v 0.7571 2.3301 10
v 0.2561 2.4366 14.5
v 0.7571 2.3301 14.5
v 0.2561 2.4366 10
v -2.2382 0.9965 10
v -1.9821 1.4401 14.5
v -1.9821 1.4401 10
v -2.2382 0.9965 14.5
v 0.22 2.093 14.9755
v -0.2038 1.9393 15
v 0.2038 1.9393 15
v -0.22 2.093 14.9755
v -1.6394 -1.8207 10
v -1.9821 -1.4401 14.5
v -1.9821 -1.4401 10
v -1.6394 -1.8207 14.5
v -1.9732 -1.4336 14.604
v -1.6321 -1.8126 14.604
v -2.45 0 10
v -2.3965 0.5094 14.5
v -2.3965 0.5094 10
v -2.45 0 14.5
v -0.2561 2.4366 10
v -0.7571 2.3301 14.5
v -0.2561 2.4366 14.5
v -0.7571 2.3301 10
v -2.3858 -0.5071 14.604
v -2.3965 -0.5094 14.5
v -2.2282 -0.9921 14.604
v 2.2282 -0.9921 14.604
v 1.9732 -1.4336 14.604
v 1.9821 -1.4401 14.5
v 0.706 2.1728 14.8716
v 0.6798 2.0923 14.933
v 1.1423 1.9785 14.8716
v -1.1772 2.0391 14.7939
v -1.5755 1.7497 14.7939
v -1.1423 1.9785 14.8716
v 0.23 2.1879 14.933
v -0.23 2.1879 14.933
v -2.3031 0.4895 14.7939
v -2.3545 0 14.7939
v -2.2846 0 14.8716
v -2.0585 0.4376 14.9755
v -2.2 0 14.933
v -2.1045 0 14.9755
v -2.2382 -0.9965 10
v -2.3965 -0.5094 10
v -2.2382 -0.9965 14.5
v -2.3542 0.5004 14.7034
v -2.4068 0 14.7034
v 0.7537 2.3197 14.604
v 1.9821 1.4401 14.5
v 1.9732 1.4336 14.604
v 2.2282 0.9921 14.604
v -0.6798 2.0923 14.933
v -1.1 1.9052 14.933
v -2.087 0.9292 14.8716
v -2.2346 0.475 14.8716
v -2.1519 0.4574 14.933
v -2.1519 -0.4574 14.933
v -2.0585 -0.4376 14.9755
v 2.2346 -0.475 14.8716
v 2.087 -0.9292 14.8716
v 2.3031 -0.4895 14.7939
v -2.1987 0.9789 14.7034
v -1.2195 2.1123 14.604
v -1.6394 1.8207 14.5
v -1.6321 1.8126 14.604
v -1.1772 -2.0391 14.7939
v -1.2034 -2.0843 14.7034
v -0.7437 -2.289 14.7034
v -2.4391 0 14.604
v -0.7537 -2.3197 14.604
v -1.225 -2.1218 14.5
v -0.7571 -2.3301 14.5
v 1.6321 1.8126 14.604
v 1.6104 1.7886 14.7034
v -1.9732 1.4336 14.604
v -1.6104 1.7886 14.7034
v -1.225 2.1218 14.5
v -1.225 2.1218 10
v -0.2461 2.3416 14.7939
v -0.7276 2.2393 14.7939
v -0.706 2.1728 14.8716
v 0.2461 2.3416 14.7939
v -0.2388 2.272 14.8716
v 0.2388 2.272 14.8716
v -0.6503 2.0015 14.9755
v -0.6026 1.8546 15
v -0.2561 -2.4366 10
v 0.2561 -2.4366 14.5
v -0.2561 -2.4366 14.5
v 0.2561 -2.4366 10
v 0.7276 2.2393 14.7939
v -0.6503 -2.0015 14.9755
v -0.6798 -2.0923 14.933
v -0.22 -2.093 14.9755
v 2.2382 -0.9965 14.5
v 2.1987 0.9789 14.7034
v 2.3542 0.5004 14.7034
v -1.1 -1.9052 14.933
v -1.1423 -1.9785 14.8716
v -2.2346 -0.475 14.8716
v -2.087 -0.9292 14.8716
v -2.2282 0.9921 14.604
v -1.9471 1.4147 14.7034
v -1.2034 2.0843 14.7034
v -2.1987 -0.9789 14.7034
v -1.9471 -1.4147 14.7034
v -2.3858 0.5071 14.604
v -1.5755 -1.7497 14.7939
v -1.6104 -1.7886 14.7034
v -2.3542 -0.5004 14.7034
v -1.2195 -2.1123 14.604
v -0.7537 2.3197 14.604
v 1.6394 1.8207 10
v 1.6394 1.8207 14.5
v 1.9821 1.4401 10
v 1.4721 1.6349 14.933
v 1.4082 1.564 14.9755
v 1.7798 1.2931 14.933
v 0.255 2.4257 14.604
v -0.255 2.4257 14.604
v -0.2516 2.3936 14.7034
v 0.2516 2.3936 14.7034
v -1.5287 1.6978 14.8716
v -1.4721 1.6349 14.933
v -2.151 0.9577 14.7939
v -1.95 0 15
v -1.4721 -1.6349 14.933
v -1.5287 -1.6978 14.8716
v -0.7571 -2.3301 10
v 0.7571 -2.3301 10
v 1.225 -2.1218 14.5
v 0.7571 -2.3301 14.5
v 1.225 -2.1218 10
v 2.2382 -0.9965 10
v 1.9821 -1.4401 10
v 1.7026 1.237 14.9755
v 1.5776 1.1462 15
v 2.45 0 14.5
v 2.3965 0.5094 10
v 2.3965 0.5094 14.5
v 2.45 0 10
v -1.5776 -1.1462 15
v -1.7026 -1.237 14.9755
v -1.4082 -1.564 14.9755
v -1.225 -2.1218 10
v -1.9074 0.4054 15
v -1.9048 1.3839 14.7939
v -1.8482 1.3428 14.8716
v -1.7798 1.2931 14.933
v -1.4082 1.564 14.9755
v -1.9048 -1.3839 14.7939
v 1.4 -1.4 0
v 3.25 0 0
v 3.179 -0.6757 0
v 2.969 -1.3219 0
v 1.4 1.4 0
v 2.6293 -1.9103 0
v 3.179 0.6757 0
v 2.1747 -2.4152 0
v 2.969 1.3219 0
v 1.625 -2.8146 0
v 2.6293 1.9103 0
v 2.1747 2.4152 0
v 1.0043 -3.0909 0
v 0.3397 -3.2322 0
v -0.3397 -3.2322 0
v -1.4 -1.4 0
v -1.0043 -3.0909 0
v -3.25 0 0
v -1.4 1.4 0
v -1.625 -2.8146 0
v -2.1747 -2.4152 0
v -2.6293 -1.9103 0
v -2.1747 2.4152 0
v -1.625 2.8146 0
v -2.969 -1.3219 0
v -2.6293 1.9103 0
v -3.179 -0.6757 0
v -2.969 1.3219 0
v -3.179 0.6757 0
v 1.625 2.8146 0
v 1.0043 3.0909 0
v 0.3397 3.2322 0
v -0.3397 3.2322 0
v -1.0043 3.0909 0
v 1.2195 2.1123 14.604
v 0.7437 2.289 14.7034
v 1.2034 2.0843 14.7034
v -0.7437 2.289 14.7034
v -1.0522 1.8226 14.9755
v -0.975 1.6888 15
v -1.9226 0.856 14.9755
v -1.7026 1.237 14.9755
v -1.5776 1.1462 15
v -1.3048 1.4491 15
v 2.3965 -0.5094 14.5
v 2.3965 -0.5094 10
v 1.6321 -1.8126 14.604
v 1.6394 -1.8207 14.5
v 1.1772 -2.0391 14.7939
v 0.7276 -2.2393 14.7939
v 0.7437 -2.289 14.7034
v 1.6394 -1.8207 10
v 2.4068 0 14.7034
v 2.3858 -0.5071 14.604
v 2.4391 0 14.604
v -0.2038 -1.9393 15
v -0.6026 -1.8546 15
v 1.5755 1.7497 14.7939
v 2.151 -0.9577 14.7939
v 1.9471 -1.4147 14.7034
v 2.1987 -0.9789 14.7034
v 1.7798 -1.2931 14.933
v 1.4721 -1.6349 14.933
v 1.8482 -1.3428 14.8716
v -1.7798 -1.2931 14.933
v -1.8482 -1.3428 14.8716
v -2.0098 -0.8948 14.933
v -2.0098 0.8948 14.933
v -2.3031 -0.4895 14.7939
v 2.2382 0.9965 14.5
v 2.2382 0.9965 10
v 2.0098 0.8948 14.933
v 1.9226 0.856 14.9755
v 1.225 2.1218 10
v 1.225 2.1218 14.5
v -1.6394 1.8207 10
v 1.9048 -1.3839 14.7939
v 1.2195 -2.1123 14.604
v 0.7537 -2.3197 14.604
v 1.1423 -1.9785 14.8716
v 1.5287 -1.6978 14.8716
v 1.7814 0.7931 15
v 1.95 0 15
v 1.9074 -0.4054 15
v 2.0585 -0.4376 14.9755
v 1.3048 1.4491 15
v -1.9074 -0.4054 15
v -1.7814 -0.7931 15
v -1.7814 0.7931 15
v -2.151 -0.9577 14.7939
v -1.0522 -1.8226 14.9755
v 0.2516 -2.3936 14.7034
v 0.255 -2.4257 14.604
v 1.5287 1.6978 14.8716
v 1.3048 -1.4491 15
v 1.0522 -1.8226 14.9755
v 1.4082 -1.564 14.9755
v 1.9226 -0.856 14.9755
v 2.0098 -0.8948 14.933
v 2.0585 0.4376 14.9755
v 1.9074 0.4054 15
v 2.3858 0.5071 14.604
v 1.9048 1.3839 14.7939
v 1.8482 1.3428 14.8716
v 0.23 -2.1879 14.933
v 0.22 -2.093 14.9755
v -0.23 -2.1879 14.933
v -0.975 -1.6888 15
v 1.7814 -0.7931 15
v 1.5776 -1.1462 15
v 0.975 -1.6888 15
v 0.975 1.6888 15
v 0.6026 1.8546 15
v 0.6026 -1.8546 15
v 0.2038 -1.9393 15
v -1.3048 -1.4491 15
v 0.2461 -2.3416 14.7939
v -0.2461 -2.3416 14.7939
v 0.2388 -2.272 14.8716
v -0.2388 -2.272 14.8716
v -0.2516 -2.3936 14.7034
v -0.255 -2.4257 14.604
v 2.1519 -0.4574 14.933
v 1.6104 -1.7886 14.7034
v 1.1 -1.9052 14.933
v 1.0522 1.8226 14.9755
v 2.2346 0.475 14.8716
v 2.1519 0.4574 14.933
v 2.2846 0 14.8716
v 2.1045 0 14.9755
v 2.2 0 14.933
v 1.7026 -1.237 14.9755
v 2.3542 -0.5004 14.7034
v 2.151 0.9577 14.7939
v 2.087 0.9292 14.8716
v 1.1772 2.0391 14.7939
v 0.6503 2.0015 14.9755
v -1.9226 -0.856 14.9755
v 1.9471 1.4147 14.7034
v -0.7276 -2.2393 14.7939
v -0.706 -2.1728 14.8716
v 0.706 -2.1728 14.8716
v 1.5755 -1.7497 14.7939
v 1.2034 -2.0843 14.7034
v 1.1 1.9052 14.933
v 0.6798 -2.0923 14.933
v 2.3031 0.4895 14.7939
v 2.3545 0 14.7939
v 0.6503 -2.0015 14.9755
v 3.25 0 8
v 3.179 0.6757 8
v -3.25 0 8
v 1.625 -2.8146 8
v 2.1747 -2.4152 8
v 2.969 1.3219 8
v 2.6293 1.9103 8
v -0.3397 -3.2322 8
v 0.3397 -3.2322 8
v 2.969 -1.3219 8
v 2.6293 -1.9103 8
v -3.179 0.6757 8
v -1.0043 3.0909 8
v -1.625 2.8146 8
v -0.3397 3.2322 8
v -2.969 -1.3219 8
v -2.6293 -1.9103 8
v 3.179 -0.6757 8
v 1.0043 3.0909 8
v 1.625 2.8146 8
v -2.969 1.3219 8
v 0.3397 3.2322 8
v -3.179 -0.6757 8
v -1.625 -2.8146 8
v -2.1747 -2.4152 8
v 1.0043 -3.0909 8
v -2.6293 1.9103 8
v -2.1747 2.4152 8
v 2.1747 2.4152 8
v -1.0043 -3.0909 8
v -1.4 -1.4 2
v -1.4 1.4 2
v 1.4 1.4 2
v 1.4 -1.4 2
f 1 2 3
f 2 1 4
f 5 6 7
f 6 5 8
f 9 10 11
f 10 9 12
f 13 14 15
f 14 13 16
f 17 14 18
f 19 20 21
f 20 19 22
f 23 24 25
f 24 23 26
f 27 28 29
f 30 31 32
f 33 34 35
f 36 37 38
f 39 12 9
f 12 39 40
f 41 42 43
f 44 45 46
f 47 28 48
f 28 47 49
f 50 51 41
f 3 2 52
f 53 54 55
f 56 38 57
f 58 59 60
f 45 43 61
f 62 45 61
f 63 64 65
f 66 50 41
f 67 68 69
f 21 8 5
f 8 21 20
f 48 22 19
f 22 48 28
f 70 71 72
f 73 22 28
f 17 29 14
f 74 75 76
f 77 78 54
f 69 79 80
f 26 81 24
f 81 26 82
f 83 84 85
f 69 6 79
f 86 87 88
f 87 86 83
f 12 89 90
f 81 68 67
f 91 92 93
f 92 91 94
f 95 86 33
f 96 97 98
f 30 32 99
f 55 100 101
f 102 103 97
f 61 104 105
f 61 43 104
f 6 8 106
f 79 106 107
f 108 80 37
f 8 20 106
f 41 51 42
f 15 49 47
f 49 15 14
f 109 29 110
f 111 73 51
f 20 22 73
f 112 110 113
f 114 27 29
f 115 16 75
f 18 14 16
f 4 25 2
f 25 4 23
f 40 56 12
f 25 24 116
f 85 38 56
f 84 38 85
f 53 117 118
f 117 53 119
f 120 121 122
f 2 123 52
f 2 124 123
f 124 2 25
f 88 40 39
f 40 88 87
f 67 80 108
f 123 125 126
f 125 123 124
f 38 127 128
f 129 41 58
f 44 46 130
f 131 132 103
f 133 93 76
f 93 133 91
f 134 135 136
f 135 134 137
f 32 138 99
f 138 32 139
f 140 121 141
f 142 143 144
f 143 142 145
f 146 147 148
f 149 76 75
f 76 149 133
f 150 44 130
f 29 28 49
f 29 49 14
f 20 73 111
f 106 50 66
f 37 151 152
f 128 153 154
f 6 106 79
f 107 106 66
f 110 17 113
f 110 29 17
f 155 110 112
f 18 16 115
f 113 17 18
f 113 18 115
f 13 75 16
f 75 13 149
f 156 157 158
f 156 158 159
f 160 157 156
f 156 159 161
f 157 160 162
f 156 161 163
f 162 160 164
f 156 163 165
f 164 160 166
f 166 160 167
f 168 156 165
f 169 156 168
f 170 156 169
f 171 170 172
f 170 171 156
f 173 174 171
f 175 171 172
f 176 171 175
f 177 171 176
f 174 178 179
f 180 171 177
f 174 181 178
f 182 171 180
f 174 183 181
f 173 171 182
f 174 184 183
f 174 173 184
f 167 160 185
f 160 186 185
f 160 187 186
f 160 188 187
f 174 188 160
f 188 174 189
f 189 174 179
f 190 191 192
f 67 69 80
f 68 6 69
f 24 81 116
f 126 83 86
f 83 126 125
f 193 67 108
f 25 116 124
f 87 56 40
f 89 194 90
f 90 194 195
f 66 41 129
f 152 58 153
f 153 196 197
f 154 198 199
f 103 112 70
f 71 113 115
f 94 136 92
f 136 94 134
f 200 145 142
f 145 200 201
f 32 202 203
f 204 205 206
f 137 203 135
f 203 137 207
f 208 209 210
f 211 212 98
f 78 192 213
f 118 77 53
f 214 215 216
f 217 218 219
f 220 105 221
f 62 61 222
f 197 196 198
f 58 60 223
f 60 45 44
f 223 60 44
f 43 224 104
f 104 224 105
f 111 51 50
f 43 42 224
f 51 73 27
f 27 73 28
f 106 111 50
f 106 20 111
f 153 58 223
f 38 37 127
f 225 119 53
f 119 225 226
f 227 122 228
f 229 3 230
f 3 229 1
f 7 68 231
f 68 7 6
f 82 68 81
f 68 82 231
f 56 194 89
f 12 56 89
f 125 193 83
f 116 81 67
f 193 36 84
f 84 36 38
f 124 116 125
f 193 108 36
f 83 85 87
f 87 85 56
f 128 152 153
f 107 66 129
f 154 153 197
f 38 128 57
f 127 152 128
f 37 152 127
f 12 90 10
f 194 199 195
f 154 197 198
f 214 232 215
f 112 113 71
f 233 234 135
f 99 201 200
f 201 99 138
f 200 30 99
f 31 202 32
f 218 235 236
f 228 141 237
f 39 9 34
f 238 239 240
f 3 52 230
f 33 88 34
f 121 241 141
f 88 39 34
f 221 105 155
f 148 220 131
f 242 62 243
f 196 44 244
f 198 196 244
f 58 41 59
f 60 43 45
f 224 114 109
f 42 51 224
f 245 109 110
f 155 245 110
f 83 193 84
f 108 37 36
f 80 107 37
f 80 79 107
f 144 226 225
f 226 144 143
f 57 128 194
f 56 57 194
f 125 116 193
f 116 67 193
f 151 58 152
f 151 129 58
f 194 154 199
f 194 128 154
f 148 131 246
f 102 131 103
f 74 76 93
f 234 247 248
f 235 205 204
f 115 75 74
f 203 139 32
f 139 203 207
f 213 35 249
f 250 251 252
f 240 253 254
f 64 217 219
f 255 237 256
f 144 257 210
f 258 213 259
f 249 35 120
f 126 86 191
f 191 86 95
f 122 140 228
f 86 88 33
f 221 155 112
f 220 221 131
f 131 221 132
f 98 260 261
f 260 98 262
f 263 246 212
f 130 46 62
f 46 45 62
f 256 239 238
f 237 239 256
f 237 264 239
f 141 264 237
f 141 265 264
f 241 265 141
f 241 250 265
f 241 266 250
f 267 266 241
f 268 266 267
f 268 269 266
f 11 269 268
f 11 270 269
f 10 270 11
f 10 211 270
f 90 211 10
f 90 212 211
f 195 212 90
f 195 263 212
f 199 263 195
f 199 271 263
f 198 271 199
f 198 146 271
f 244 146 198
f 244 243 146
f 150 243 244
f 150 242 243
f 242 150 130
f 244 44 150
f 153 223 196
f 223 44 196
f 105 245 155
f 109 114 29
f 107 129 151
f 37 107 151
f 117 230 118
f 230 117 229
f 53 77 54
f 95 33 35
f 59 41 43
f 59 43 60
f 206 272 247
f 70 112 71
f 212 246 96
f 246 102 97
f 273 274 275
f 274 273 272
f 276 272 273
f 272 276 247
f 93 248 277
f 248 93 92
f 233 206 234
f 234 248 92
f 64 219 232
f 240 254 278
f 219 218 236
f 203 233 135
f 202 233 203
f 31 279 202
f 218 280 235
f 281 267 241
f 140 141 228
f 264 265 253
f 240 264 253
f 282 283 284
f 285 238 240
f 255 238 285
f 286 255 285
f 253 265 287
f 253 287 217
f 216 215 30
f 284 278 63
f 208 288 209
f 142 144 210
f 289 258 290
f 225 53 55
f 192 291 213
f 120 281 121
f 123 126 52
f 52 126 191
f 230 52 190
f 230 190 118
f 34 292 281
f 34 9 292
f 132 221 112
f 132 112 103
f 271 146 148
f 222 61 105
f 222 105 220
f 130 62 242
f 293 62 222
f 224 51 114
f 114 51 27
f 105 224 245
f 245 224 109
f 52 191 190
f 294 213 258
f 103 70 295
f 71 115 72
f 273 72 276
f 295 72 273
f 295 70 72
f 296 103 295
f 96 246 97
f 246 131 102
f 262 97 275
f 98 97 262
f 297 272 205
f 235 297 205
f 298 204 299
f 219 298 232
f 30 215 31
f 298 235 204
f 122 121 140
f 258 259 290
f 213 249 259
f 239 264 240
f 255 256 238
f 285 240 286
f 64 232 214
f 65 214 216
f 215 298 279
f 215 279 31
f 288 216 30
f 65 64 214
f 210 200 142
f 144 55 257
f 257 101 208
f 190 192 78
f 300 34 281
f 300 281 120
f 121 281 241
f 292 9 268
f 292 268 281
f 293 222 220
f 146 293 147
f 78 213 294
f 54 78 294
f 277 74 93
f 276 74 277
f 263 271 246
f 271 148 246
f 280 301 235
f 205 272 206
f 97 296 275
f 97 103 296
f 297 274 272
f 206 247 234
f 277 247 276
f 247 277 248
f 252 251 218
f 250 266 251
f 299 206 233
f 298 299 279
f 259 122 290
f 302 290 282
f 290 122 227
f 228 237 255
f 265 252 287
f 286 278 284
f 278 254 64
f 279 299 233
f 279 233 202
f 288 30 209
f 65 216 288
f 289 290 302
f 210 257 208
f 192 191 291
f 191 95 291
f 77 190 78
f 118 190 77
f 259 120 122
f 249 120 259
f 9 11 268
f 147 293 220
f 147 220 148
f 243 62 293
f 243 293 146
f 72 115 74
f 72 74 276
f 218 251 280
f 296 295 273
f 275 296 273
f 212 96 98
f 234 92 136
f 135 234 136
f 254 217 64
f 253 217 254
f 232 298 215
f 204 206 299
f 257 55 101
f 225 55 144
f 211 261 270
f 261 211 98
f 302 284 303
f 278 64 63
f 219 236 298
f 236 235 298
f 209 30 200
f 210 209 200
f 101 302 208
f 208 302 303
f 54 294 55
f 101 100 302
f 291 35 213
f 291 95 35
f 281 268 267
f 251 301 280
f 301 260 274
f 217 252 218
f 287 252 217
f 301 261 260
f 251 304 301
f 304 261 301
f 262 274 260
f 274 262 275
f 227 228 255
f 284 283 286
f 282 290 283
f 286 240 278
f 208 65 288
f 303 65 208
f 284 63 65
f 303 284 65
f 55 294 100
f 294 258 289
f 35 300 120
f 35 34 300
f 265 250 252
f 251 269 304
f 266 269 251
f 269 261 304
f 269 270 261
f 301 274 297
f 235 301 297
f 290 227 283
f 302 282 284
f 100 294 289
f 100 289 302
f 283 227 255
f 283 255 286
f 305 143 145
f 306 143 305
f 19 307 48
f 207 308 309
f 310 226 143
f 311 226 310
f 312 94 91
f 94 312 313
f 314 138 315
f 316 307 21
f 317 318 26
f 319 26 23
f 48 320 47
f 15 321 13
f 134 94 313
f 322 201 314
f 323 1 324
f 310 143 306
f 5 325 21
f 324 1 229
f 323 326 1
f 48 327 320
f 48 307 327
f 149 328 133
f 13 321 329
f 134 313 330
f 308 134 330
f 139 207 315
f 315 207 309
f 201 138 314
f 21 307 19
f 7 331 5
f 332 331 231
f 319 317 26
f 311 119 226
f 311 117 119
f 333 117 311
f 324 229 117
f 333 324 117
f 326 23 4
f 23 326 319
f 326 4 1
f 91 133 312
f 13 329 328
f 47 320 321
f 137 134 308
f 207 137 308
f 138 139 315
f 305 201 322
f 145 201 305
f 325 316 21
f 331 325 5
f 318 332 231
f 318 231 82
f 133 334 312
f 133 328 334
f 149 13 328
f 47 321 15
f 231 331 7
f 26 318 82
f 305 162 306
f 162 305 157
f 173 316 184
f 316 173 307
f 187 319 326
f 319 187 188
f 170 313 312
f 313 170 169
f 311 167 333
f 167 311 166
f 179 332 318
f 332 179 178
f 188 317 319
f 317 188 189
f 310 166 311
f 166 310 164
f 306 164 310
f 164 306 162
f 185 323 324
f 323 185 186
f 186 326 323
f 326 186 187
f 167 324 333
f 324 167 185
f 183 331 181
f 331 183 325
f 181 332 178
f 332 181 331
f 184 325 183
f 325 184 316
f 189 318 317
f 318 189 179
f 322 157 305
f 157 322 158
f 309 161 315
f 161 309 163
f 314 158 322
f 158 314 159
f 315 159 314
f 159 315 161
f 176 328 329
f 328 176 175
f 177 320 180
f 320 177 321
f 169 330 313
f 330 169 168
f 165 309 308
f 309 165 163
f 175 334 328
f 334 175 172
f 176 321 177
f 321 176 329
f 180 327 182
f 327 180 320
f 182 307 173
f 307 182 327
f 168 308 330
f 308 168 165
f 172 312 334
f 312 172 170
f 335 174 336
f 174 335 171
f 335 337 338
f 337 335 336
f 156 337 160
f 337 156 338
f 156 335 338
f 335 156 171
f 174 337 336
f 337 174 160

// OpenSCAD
depth_total = 19.0;
depth_button = 3.5;
standoff = 1.5;
button_height_over_pcb = 7.5;
button_diameter_top = 4.9;
button_diameter_bottom = 6.5;
button_hole_size = 2.8;
button_hole_depth = 2.0;

h1 = depth_total + standoff - button_height_over_pcb + button_hole_depth;
h2 = depth_total - depth_button - button_height_over_pcb + button_hole_depth;

$fs = 0.01;

module rounded_cylinder(r,h,n) {
  rotate_extrude(convexity=1) {
    offset(r=n) offset(delta=-n) square([r,h]);
    square([n,h]);
  }
}
       
color("orange") {
    difference() {
        union() {
            rounded_cylinder(button_diameter_top/2, h1, 0.5);
            translate([0,0,h2-2]) {
                cylinder(2,d1=button_diameter_bottom,d2=button_diameter_top);
            }
            cylinder(h2-2,d=button_diameter_bottom);
        }
        translate([-button_hole_size/2,-button_hole_size/2,0]) {
            cube([button_hole_size,button_hole_size,button_hole_depth]);
        }
    }
}
